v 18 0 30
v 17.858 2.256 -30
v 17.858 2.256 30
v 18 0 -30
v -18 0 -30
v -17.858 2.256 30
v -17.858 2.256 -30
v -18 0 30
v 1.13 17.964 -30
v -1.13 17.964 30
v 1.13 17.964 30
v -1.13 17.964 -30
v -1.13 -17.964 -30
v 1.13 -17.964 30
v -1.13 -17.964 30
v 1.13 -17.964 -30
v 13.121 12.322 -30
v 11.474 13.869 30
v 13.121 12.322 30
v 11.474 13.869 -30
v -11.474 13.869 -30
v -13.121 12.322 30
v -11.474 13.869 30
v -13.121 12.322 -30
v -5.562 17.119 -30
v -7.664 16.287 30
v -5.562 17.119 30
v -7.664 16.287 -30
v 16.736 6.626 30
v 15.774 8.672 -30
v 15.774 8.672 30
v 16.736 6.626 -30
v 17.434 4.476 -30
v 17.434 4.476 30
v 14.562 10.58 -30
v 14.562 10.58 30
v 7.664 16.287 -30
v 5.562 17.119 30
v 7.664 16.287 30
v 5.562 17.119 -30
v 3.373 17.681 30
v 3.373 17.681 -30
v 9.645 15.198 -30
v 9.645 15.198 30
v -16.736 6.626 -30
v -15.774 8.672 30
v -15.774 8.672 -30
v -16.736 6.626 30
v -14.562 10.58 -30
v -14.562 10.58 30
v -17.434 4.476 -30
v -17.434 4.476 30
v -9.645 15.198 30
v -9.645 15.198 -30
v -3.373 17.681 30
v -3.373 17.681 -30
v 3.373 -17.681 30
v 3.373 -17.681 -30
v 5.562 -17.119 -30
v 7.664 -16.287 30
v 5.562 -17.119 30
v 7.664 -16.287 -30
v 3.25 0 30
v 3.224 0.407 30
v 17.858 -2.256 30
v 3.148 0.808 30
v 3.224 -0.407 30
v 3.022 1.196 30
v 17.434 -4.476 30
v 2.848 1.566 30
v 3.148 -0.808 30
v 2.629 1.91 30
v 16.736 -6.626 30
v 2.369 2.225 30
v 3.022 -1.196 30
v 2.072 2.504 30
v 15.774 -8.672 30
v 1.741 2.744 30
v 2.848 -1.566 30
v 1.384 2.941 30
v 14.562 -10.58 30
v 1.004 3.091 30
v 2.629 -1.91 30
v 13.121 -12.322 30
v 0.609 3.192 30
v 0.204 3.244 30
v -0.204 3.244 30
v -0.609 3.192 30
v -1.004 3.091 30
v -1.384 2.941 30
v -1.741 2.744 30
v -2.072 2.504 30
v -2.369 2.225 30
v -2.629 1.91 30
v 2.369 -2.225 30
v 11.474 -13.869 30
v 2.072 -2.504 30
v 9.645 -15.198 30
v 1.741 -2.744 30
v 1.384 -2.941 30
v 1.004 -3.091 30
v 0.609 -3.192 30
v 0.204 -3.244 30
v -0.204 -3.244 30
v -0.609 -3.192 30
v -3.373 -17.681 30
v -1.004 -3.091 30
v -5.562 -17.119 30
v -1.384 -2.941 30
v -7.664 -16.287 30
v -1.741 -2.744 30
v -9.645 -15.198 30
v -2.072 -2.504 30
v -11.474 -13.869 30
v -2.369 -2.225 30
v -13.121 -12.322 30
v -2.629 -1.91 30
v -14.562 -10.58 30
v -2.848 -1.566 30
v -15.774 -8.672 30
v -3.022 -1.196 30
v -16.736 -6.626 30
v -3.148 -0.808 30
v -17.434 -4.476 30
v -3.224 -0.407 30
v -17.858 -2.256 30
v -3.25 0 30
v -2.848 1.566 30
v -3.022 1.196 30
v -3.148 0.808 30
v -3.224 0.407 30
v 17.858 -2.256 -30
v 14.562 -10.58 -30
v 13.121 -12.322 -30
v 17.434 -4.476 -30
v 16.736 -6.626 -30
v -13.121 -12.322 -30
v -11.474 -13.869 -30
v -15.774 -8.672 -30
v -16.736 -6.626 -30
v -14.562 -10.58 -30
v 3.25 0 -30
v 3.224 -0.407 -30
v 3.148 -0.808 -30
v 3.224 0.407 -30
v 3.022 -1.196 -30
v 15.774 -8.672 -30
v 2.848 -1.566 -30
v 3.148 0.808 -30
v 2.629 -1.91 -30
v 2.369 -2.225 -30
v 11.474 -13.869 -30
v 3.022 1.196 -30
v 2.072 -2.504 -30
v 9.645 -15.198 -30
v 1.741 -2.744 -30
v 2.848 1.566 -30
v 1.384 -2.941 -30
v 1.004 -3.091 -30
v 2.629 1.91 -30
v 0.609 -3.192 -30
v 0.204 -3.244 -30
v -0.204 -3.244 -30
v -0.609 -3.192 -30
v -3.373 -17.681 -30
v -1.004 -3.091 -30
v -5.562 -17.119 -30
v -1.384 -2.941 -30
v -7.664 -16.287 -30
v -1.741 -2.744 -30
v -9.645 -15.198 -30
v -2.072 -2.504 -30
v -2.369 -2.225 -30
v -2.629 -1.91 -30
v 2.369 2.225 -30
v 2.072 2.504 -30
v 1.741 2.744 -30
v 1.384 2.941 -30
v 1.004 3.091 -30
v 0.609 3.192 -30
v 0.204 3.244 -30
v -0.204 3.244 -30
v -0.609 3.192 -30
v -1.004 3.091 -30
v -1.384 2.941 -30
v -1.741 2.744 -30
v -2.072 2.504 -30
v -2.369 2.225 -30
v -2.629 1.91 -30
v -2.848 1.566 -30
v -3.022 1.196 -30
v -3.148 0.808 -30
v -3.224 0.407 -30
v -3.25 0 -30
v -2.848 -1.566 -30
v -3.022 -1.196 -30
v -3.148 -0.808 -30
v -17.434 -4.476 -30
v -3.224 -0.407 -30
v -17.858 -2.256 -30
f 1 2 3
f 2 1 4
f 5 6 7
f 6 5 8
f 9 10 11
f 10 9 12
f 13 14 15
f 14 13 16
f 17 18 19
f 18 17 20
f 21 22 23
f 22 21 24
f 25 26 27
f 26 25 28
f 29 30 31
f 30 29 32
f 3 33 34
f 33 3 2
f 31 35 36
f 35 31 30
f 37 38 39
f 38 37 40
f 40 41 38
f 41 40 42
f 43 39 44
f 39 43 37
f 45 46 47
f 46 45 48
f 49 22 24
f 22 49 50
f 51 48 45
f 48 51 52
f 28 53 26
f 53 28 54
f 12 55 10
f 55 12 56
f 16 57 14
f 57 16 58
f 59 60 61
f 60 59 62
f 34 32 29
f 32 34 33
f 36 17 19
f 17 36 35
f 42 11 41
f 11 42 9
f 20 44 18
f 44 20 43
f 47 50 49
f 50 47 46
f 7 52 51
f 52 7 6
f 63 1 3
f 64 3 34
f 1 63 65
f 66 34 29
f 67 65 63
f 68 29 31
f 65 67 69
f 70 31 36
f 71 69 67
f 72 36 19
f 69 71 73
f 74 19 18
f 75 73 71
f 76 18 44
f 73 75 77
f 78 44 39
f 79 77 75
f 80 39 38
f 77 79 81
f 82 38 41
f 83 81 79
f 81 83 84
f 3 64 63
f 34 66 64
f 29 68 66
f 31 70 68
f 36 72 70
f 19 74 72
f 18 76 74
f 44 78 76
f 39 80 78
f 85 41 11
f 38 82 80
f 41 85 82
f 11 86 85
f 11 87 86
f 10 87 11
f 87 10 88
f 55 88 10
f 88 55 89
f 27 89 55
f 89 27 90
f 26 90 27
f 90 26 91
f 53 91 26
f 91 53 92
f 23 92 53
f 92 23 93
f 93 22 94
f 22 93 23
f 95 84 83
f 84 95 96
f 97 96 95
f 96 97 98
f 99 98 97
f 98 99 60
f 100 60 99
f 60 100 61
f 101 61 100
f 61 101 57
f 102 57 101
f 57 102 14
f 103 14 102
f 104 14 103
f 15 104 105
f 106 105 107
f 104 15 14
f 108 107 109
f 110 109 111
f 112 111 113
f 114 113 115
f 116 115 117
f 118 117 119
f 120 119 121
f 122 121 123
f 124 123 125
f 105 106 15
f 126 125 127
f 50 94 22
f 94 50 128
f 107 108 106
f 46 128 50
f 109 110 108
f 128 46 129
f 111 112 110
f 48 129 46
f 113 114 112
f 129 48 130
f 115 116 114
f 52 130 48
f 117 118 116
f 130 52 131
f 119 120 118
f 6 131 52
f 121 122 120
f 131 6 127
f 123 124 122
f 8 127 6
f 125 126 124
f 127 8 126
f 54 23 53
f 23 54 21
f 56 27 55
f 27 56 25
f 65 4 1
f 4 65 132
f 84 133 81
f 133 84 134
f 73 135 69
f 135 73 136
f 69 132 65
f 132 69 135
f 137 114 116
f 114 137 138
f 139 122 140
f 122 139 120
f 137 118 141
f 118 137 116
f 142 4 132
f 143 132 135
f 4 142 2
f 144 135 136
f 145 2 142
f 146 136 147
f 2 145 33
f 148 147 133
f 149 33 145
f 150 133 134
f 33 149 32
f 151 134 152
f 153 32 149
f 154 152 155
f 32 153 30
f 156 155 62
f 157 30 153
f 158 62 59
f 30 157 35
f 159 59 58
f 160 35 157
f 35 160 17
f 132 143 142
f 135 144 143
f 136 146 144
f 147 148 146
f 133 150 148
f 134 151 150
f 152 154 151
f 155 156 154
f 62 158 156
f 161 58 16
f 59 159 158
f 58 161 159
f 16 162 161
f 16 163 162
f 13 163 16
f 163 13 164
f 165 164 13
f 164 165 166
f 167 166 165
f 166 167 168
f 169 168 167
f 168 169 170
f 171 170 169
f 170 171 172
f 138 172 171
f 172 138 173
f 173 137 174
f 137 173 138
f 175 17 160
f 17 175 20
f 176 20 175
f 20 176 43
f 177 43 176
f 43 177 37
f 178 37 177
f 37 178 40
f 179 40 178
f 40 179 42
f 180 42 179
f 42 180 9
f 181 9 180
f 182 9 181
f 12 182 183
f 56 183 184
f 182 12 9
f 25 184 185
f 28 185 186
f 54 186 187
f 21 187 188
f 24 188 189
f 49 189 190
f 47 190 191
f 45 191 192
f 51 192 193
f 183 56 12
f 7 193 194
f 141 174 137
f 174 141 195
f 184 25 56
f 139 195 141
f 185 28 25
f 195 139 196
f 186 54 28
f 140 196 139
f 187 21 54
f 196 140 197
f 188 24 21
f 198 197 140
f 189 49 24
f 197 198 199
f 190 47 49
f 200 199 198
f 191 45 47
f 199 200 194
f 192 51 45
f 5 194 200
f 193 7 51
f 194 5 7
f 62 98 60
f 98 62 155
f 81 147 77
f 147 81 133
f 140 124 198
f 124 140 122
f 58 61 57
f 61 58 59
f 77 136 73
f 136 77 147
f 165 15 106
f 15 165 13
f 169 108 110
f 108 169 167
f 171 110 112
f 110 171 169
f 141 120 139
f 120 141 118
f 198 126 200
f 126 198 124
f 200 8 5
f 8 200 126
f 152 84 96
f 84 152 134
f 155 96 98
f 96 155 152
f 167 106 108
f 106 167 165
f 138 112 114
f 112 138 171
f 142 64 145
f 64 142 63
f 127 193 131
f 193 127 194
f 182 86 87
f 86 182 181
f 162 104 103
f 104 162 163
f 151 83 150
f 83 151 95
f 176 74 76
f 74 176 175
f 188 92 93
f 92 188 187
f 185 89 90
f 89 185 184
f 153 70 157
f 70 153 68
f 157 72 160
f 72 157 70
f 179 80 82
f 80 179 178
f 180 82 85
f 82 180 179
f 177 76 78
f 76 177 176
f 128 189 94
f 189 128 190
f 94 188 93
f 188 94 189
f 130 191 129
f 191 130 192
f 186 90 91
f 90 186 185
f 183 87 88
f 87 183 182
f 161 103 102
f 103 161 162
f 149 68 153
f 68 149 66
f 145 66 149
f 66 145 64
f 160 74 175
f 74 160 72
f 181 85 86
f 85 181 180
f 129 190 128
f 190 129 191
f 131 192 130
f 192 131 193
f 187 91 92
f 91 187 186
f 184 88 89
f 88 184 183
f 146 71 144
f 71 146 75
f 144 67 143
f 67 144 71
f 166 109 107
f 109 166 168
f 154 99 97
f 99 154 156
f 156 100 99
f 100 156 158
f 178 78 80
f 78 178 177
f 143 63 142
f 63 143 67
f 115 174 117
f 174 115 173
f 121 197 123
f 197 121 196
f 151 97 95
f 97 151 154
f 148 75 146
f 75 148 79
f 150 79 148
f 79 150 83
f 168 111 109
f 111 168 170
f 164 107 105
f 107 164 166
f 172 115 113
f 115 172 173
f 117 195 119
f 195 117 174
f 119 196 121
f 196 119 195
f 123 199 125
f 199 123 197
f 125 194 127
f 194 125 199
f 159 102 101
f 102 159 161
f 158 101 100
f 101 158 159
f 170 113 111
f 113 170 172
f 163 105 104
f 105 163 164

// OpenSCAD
$fn = 50;


difference() {
	union() {
		translate(v = [0, 0, -30.0000000000]) {
			cylinder(h = 60, r = 18.0000000000);
		}
	}
	union() {
		translate(v = [0, 0, -100.0000000000]) {
			cylinder(h = 200, r = 3.2500000000);
		}
	}
}
